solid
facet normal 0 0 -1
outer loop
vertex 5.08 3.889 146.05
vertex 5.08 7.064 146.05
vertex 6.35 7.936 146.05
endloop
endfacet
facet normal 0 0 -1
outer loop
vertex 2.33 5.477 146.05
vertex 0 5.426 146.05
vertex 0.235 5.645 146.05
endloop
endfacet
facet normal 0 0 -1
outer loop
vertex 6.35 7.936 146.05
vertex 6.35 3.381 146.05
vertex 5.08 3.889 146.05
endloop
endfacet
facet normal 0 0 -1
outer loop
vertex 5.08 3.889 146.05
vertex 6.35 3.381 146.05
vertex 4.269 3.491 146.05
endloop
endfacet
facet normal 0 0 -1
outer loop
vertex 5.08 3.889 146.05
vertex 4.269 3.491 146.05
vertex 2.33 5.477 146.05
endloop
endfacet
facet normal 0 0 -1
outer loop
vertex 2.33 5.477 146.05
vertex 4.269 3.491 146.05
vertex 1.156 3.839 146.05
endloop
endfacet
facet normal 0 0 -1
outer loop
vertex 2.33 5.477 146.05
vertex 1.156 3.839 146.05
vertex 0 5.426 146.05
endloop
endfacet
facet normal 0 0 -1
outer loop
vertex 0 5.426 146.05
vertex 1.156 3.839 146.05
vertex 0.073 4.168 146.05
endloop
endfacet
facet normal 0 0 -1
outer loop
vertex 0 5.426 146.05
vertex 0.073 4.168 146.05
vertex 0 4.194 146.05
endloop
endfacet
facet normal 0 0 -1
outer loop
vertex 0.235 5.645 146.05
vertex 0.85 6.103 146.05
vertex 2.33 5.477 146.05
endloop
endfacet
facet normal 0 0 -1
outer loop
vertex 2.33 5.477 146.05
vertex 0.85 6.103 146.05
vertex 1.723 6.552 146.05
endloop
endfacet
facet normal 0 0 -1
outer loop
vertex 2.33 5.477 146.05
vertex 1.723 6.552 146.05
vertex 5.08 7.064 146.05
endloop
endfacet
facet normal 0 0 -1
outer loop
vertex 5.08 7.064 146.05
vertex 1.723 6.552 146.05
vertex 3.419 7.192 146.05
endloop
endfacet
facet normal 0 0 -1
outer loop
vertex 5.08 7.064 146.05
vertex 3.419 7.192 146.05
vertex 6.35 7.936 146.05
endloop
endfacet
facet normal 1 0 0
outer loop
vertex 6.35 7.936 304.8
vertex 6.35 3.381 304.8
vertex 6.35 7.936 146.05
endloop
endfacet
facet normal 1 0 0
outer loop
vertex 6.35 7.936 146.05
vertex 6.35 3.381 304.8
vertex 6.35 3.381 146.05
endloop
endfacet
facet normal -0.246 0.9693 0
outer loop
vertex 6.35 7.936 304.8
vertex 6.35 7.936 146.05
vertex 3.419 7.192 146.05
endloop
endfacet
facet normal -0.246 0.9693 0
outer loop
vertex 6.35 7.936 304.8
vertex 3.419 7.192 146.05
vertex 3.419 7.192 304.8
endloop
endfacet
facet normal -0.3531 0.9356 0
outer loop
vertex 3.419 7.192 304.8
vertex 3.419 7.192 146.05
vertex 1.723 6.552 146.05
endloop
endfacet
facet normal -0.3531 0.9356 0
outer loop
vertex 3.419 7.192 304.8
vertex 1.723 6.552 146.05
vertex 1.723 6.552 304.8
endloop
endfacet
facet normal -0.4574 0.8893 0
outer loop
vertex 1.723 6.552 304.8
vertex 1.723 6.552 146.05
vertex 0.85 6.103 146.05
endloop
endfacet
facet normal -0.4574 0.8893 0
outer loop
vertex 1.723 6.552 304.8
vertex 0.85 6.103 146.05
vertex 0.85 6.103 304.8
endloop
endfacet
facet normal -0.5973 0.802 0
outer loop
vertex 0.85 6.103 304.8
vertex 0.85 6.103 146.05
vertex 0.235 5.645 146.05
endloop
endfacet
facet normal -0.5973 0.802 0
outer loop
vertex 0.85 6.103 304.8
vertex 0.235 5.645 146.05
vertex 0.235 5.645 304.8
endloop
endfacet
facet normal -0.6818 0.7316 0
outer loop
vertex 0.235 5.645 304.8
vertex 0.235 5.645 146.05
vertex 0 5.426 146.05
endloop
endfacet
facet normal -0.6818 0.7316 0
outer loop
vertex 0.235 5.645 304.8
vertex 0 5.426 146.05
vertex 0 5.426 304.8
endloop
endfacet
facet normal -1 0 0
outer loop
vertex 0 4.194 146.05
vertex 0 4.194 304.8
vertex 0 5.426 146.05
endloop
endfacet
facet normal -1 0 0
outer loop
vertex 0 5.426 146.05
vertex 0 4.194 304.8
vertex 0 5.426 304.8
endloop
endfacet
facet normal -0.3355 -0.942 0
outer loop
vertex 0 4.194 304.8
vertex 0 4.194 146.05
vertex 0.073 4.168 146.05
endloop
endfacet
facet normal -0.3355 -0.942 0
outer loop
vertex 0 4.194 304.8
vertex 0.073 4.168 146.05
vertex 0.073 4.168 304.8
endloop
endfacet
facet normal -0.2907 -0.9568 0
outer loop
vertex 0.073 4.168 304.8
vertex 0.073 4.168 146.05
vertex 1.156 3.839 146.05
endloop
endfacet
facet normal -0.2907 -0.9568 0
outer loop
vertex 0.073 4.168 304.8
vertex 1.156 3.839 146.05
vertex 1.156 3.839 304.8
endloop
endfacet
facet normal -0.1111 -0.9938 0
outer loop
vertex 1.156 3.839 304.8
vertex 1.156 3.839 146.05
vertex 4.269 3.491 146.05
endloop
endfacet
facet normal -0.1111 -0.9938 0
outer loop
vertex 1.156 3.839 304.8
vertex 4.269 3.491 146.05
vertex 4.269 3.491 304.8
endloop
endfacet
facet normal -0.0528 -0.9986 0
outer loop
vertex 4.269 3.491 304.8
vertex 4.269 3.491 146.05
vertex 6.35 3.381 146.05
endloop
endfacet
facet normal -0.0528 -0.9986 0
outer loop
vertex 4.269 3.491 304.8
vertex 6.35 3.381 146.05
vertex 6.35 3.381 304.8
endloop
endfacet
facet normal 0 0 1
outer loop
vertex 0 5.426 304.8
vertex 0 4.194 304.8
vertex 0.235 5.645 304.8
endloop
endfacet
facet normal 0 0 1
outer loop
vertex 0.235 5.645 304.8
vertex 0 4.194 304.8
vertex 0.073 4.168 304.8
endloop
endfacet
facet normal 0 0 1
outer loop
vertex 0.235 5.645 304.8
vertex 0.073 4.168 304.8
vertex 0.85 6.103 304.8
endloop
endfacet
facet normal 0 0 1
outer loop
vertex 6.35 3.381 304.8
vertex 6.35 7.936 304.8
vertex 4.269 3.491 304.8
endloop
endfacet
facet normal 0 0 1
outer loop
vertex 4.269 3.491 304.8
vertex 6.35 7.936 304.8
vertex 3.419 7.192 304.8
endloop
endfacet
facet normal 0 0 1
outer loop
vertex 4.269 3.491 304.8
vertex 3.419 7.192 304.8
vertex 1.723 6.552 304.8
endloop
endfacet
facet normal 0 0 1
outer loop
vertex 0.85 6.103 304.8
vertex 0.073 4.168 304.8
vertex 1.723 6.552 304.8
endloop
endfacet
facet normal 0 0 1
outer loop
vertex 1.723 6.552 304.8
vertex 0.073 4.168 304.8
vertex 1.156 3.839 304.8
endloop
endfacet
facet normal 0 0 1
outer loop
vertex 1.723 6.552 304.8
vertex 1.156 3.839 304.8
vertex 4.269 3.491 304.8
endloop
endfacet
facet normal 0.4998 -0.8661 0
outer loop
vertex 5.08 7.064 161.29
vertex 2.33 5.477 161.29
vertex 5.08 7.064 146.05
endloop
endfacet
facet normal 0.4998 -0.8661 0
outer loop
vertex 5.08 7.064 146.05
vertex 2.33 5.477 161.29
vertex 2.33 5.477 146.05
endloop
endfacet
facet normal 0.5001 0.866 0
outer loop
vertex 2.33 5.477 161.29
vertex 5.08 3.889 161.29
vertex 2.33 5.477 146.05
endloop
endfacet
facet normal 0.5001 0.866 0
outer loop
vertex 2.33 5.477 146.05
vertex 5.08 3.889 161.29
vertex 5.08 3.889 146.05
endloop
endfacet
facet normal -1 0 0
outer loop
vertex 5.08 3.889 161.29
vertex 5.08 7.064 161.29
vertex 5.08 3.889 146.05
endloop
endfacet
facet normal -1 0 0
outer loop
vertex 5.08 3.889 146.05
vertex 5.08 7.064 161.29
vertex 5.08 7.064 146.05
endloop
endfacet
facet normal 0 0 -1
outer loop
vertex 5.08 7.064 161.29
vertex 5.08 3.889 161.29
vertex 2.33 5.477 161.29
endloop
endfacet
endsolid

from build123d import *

# Parameters (mm, degrees)
STOCK_LEADING_START            = 146.05
STOCK_LEADING_RIB_BODY_1_DEPTH = 158.75
CUT_EXTRUDE1_DEPTH             = 15.24


# Read off the part's stored shape, not the designer's step: Stock-Leading rib body-1
with BuildPart() as part:
    # Stock-Leading rib body-1 outline → Stock-Leading rib body-1 (new body)
    with BuildSketch(Plane.XY.offset(STOCK_LEADING_START)):
        with BuildLine():
            Line((6.35, 3.381307893), (6.35, 7.936305639))
            add(Edge.make_bspline(
                [(6.35, 7.936305639), (6.009319534, 7.861180878), (5.051957159, 7.646943538), (3.570707886, 7.26907779), (2.126558515, 6.740774481), (0.91415771, 6.194600428), (0.314609795, 5.728416669), (0.046728414, 5.472683173), (9e-09, 5.426302614)],
                knots=[0.474331893, 0.474331893, 0.474331893, 0.474331893, 0.478015714, 0.484719936, 0.490901449, 0.496493482, 0.50193463, 0.503130574, 0.503130574, 0.503130574, 0.503130574], degree=3))
            Line((9e-09, 5.426302614), (-2e-09, 4.19416671))
            add(Edge.make_bspline(
                [(-2e-09, 4.19416671), (0.047371281, 4.176869278), (0.361036244, 4.065468917), (0.954407327, 3.830682548), (2.218770667, 3.717647253), (3.624578145, 3.502734879), (5.081120409, 3.460631155), (6.010518863, 3.402321821), (6.35, 3.381307893)],
                knots=[0.513595493, 0.513595493, 0.513595493, 0.513595493, 0.514195842, 0.517506907, 0.521314719, 0.52610709, 0.531740963, 0.534988738, 0.534988738, 0.534988738, 0.534988738], degree=3))
        make_face()
    extrude(amount=STOCK_LEADING_RIB_BODY_1_DEPTH)

    # Sketch1 → Cut-Extrude1 (cut)
    with BuildSketch(Plane(origin=(0, 0, 146.05), x_dir=(-1, 0, 0), z_dir=(0, 0, -1))):
        Polygon((-5.08, 7.064307893), (-5.08, 3.889307893), (-2.330369343, 5.476807893), align=None)
    extrude(amount=-CUT_EXTRUDE1_DEPTH, mode=Mode.SUBTRACT)


solid = part.part
